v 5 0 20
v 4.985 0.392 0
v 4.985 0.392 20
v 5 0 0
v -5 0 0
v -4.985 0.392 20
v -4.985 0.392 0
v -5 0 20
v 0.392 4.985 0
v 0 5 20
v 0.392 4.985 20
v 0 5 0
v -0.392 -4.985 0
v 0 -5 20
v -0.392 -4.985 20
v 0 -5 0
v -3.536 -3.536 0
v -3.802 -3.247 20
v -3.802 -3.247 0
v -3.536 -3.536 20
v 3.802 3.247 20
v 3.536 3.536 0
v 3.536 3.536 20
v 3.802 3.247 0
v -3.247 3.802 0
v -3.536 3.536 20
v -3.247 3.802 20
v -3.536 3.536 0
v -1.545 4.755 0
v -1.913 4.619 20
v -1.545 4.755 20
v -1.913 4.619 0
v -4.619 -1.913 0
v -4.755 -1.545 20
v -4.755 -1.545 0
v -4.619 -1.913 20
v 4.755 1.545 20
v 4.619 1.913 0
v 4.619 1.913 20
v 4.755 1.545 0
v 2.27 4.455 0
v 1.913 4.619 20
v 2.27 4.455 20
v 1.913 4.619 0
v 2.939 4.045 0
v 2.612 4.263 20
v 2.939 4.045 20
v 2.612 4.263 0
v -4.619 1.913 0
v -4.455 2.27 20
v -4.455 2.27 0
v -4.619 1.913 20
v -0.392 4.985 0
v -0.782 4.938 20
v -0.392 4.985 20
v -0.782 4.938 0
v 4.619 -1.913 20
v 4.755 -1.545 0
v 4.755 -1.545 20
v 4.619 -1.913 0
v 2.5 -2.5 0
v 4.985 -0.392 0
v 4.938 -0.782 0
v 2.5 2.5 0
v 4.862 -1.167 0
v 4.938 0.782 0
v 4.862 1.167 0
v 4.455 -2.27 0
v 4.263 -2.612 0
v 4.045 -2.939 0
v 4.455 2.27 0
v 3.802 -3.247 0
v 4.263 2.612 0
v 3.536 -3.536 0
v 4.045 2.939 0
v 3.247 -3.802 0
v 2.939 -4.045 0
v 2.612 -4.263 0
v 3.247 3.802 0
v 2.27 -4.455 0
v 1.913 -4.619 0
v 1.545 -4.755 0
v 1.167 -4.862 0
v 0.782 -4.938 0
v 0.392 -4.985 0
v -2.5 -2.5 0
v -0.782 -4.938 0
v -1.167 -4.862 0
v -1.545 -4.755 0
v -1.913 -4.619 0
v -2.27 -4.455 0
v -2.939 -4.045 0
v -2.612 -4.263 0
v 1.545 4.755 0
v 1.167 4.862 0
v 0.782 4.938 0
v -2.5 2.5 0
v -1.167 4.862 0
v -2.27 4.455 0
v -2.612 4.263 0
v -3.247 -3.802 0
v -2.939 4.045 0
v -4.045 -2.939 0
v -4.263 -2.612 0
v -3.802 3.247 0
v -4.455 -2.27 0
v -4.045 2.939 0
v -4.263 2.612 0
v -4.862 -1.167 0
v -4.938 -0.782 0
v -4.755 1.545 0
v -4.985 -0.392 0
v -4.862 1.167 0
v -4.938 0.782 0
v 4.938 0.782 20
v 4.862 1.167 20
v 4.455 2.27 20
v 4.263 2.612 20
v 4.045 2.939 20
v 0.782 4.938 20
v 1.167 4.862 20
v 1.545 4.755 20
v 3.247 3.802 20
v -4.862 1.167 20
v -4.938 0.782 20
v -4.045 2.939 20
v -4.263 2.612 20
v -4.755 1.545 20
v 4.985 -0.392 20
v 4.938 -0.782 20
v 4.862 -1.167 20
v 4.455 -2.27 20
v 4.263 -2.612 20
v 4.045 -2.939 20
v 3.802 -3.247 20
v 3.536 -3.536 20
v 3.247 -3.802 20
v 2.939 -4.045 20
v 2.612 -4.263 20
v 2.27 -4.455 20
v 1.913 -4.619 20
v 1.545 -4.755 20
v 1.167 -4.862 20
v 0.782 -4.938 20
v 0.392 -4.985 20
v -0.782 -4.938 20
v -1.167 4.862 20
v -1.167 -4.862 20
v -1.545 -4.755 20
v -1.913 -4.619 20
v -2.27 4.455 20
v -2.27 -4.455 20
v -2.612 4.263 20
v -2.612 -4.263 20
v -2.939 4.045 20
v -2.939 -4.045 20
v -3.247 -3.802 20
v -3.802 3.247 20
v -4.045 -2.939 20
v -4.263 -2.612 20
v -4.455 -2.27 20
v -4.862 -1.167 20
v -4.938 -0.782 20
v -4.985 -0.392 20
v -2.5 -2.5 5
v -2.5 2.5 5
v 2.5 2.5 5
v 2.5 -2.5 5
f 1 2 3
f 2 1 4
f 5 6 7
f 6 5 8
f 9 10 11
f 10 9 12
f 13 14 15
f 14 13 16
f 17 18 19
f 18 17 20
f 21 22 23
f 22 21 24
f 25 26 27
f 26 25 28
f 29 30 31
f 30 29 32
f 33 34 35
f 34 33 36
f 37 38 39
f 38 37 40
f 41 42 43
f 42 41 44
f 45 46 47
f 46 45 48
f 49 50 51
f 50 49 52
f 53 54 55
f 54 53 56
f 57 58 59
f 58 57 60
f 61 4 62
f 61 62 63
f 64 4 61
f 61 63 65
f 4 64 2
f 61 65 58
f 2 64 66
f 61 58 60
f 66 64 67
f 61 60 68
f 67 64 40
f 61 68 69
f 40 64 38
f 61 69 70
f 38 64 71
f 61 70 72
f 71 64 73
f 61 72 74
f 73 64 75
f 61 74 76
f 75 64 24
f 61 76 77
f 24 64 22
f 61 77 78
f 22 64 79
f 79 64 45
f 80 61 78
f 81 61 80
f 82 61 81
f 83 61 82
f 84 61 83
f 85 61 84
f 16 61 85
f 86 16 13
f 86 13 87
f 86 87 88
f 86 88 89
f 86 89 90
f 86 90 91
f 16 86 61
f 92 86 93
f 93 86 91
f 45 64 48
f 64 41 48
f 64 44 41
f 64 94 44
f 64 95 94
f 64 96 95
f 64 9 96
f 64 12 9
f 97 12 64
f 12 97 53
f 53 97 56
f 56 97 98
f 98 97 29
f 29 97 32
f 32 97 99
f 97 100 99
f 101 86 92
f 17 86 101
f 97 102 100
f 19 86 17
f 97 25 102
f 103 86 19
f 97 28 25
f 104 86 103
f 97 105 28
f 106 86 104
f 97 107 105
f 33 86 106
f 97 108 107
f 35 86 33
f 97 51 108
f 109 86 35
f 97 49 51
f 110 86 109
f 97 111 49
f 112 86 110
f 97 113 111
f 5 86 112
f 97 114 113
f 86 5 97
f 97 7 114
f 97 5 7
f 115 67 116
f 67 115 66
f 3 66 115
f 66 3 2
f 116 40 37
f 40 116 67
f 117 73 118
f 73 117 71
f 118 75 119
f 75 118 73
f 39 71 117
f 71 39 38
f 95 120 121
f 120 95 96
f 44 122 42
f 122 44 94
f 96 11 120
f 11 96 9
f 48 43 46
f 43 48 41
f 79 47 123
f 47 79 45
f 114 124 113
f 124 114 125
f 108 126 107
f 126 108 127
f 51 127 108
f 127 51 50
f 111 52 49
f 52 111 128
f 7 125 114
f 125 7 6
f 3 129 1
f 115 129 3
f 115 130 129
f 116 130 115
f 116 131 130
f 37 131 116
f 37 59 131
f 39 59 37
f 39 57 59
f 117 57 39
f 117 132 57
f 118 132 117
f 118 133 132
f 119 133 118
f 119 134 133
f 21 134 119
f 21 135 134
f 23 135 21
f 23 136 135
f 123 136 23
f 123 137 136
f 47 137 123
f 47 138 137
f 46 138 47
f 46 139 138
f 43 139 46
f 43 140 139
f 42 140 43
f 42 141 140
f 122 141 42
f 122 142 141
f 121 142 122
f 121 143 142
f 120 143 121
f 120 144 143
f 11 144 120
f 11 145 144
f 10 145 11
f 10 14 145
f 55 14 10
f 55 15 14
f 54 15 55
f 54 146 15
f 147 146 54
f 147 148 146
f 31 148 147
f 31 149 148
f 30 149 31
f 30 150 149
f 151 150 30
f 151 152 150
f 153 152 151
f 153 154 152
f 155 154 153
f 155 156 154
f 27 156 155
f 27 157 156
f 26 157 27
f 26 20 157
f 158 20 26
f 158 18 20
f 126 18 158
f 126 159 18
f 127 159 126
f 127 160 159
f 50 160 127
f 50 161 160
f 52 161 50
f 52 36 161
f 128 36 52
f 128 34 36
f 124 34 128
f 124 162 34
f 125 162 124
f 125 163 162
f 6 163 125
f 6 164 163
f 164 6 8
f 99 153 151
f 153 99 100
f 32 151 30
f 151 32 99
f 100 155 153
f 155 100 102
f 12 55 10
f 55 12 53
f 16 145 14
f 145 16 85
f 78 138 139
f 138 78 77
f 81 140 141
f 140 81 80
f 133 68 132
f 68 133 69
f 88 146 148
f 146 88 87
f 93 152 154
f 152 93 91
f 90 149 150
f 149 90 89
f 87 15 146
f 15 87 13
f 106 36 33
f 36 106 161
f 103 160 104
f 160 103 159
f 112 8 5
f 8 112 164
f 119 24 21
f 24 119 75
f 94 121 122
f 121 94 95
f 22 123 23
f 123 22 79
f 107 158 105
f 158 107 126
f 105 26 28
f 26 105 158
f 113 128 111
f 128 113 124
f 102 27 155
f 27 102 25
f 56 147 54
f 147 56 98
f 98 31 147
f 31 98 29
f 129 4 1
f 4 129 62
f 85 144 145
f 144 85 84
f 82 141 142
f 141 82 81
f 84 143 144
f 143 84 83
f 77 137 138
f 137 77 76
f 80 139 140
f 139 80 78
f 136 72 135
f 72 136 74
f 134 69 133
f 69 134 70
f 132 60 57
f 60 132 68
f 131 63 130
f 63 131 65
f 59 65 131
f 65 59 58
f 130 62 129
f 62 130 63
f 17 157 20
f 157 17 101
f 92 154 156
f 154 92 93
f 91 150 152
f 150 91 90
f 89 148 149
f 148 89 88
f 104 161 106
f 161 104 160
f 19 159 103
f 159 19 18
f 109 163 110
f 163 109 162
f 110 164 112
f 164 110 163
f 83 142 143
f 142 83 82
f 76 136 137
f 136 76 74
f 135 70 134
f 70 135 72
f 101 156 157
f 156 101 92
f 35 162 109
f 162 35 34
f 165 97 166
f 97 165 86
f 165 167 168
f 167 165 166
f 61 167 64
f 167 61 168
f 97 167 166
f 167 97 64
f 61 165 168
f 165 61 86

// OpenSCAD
size = 5;


difference(){
    cylinder(h=20, r=5, center=false,$fn = 80);
    cube([size,size,10],center=true);
}
